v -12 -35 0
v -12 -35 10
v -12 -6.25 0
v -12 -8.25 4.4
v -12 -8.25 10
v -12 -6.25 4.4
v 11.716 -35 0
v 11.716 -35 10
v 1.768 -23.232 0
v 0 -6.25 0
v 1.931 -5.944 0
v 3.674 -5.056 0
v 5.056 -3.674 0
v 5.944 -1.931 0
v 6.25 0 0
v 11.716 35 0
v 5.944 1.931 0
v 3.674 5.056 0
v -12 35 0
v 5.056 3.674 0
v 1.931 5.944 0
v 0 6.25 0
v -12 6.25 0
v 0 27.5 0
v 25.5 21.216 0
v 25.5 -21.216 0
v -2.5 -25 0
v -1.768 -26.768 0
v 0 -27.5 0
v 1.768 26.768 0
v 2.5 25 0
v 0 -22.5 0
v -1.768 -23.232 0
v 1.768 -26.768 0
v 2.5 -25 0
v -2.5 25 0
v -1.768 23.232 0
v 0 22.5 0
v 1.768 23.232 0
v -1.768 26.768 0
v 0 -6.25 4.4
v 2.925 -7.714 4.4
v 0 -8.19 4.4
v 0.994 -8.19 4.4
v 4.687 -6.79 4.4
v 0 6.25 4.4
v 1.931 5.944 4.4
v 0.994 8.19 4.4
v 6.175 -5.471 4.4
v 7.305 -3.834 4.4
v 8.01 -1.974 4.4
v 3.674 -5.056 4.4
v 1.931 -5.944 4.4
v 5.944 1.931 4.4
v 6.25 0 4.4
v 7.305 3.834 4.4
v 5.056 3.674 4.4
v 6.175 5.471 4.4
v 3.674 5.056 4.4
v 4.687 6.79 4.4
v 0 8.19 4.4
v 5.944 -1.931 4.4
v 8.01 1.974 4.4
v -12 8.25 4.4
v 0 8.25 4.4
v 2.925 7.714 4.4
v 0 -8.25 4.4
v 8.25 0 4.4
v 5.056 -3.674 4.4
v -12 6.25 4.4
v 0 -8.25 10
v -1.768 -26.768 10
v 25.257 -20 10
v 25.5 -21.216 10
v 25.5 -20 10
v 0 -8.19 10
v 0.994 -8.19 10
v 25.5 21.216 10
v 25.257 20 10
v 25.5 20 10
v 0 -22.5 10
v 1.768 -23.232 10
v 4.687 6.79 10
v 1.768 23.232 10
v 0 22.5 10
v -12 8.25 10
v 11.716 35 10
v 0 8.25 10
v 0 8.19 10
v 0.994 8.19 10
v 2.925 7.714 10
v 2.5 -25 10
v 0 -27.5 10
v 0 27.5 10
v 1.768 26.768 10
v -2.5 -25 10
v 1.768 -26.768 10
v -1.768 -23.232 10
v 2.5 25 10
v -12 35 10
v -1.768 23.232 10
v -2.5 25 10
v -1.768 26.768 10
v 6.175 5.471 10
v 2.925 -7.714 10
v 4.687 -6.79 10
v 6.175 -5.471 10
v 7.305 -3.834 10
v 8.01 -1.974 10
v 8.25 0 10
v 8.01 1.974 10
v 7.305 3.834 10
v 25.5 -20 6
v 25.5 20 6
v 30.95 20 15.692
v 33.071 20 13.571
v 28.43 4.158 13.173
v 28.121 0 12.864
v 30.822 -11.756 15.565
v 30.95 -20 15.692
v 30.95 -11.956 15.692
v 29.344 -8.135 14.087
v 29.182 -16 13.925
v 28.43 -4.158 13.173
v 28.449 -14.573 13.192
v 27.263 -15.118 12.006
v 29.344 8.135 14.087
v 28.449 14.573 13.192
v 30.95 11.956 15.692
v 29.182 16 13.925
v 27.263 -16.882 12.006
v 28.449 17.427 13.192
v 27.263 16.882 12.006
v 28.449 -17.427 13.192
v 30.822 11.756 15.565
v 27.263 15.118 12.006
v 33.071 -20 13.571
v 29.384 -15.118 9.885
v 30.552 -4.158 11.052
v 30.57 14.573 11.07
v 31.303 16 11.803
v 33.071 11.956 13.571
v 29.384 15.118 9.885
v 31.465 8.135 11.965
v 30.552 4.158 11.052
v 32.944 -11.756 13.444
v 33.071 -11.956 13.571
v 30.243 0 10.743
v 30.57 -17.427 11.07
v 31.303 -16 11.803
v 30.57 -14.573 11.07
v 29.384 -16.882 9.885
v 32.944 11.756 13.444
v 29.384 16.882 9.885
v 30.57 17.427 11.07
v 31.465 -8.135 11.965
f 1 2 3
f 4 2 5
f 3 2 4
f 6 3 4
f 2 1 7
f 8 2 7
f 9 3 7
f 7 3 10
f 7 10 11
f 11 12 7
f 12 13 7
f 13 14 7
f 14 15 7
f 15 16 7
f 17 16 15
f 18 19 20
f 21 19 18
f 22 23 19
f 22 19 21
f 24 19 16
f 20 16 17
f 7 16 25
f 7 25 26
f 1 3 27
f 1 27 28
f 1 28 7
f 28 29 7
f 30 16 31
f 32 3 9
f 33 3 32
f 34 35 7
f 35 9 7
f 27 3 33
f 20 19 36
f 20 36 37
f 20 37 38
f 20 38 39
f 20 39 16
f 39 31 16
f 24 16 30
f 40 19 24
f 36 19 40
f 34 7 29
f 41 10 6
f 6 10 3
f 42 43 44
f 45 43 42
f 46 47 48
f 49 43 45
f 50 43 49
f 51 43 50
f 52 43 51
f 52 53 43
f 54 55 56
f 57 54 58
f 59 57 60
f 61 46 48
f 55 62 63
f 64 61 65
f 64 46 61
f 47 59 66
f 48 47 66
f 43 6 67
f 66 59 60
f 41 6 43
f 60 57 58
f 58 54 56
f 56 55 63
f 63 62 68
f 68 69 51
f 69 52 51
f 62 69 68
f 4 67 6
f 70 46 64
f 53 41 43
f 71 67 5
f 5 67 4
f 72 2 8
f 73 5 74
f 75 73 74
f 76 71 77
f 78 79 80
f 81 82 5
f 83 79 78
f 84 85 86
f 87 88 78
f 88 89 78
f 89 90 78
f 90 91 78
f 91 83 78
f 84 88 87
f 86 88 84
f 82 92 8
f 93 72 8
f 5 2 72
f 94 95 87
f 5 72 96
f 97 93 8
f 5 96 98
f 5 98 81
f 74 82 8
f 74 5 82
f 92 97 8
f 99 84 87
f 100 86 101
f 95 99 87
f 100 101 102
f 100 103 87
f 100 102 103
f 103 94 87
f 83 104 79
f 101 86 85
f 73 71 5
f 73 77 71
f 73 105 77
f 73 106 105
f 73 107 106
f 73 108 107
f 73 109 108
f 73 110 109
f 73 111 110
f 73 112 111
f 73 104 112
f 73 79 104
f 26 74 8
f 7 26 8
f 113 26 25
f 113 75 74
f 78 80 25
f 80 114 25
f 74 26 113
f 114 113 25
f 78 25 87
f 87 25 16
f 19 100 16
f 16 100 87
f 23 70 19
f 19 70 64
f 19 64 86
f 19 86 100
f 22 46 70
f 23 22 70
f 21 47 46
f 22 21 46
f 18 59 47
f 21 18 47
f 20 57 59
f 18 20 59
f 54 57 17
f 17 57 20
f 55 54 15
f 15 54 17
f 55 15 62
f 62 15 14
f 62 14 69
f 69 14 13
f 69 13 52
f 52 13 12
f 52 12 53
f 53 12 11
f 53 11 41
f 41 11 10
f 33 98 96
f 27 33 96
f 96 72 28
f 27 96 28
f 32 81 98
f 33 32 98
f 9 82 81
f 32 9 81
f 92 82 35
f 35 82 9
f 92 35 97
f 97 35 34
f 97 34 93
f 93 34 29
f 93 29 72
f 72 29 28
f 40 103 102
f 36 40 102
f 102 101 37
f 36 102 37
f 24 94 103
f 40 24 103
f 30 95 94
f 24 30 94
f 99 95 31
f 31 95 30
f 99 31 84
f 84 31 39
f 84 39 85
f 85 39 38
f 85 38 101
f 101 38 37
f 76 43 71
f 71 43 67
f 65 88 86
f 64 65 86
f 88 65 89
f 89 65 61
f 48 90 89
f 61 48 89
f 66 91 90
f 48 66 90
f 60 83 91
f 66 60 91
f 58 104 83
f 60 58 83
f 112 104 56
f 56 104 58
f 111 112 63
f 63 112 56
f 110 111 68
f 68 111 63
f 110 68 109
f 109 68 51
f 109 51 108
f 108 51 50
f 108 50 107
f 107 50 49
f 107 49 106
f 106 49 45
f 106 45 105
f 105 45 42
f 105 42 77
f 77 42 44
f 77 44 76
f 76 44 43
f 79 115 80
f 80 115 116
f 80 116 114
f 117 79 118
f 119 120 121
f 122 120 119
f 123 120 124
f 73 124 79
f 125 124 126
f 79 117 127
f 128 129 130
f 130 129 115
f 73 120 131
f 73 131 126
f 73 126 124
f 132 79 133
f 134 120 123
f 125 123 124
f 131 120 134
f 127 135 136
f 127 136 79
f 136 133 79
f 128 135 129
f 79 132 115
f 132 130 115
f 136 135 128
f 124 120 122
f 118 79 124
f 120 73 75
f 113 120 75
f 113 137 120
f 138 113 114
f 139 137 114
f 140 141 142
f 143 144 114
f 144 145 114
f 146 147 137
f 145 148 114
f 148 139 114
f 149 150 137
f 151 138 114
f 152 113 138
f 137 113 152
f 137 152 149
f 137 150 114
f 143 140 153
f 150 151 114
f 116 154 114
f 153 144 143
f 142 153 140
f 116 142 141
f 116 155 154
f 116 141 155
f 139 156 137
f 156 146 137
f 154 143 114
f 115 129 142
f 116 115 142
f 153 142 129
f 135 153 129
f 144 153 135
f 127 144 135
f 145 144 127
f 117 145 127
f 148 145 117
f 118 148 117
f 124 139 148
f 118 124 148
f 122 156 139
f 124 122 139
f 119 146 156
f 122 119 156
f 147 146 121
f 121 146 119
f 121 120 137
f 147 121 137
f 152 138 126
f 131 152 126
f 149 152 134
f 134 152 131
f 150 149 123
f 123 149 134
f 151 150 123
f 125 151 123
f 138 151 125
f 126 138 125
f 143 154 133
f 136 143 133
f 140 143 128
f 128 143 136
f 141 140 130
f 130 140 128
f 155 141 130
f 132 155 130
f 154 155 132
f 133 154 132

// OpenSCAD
module groovemount(){

	difference(){
		translate([-12,-35,0])cube(size=[29+8.5,70,10], center=false);


		translate([-10,0,5])cube(size=[20,12.5,15], center=true);
		translate([-10,0,5+4.4])cube(size=[20,16.5,10], center=true);

		cylinder(h=20, r=12.5/2);
		translate([0,0,4.4])cylinder(h=20, r=16.5/2);
		translate([0,-25,0])cylinder(h=20, r=5/2);
		translate([0,25,0])cylinder(h=20, r=5/2);

		// angled edges to fan_mount
		translate([30,45,11/2]) rotate([0,0,45]) cube([40,40,11], center=true);
		translate([30,-45,11/2]) rotate([0,0,45]) cube([40,40,11], center=true);

	}



}

module fan_mount() {

	translate([0,-20,0]) difference() {
		translate([-1,0,0]) cube([11,40,3]);
		translate([20+6,20,0]) cylinder(r=20,h=4);
		translate([6,4,0]) cylinder(r=1.5,h=4);
		translate([6,4+32,0]) cylinder(r=1.5,h=4);
	}

}

translate([17+9,0,6.5]) rotate([0,-45,0]) fan_mount();
groovemount();
